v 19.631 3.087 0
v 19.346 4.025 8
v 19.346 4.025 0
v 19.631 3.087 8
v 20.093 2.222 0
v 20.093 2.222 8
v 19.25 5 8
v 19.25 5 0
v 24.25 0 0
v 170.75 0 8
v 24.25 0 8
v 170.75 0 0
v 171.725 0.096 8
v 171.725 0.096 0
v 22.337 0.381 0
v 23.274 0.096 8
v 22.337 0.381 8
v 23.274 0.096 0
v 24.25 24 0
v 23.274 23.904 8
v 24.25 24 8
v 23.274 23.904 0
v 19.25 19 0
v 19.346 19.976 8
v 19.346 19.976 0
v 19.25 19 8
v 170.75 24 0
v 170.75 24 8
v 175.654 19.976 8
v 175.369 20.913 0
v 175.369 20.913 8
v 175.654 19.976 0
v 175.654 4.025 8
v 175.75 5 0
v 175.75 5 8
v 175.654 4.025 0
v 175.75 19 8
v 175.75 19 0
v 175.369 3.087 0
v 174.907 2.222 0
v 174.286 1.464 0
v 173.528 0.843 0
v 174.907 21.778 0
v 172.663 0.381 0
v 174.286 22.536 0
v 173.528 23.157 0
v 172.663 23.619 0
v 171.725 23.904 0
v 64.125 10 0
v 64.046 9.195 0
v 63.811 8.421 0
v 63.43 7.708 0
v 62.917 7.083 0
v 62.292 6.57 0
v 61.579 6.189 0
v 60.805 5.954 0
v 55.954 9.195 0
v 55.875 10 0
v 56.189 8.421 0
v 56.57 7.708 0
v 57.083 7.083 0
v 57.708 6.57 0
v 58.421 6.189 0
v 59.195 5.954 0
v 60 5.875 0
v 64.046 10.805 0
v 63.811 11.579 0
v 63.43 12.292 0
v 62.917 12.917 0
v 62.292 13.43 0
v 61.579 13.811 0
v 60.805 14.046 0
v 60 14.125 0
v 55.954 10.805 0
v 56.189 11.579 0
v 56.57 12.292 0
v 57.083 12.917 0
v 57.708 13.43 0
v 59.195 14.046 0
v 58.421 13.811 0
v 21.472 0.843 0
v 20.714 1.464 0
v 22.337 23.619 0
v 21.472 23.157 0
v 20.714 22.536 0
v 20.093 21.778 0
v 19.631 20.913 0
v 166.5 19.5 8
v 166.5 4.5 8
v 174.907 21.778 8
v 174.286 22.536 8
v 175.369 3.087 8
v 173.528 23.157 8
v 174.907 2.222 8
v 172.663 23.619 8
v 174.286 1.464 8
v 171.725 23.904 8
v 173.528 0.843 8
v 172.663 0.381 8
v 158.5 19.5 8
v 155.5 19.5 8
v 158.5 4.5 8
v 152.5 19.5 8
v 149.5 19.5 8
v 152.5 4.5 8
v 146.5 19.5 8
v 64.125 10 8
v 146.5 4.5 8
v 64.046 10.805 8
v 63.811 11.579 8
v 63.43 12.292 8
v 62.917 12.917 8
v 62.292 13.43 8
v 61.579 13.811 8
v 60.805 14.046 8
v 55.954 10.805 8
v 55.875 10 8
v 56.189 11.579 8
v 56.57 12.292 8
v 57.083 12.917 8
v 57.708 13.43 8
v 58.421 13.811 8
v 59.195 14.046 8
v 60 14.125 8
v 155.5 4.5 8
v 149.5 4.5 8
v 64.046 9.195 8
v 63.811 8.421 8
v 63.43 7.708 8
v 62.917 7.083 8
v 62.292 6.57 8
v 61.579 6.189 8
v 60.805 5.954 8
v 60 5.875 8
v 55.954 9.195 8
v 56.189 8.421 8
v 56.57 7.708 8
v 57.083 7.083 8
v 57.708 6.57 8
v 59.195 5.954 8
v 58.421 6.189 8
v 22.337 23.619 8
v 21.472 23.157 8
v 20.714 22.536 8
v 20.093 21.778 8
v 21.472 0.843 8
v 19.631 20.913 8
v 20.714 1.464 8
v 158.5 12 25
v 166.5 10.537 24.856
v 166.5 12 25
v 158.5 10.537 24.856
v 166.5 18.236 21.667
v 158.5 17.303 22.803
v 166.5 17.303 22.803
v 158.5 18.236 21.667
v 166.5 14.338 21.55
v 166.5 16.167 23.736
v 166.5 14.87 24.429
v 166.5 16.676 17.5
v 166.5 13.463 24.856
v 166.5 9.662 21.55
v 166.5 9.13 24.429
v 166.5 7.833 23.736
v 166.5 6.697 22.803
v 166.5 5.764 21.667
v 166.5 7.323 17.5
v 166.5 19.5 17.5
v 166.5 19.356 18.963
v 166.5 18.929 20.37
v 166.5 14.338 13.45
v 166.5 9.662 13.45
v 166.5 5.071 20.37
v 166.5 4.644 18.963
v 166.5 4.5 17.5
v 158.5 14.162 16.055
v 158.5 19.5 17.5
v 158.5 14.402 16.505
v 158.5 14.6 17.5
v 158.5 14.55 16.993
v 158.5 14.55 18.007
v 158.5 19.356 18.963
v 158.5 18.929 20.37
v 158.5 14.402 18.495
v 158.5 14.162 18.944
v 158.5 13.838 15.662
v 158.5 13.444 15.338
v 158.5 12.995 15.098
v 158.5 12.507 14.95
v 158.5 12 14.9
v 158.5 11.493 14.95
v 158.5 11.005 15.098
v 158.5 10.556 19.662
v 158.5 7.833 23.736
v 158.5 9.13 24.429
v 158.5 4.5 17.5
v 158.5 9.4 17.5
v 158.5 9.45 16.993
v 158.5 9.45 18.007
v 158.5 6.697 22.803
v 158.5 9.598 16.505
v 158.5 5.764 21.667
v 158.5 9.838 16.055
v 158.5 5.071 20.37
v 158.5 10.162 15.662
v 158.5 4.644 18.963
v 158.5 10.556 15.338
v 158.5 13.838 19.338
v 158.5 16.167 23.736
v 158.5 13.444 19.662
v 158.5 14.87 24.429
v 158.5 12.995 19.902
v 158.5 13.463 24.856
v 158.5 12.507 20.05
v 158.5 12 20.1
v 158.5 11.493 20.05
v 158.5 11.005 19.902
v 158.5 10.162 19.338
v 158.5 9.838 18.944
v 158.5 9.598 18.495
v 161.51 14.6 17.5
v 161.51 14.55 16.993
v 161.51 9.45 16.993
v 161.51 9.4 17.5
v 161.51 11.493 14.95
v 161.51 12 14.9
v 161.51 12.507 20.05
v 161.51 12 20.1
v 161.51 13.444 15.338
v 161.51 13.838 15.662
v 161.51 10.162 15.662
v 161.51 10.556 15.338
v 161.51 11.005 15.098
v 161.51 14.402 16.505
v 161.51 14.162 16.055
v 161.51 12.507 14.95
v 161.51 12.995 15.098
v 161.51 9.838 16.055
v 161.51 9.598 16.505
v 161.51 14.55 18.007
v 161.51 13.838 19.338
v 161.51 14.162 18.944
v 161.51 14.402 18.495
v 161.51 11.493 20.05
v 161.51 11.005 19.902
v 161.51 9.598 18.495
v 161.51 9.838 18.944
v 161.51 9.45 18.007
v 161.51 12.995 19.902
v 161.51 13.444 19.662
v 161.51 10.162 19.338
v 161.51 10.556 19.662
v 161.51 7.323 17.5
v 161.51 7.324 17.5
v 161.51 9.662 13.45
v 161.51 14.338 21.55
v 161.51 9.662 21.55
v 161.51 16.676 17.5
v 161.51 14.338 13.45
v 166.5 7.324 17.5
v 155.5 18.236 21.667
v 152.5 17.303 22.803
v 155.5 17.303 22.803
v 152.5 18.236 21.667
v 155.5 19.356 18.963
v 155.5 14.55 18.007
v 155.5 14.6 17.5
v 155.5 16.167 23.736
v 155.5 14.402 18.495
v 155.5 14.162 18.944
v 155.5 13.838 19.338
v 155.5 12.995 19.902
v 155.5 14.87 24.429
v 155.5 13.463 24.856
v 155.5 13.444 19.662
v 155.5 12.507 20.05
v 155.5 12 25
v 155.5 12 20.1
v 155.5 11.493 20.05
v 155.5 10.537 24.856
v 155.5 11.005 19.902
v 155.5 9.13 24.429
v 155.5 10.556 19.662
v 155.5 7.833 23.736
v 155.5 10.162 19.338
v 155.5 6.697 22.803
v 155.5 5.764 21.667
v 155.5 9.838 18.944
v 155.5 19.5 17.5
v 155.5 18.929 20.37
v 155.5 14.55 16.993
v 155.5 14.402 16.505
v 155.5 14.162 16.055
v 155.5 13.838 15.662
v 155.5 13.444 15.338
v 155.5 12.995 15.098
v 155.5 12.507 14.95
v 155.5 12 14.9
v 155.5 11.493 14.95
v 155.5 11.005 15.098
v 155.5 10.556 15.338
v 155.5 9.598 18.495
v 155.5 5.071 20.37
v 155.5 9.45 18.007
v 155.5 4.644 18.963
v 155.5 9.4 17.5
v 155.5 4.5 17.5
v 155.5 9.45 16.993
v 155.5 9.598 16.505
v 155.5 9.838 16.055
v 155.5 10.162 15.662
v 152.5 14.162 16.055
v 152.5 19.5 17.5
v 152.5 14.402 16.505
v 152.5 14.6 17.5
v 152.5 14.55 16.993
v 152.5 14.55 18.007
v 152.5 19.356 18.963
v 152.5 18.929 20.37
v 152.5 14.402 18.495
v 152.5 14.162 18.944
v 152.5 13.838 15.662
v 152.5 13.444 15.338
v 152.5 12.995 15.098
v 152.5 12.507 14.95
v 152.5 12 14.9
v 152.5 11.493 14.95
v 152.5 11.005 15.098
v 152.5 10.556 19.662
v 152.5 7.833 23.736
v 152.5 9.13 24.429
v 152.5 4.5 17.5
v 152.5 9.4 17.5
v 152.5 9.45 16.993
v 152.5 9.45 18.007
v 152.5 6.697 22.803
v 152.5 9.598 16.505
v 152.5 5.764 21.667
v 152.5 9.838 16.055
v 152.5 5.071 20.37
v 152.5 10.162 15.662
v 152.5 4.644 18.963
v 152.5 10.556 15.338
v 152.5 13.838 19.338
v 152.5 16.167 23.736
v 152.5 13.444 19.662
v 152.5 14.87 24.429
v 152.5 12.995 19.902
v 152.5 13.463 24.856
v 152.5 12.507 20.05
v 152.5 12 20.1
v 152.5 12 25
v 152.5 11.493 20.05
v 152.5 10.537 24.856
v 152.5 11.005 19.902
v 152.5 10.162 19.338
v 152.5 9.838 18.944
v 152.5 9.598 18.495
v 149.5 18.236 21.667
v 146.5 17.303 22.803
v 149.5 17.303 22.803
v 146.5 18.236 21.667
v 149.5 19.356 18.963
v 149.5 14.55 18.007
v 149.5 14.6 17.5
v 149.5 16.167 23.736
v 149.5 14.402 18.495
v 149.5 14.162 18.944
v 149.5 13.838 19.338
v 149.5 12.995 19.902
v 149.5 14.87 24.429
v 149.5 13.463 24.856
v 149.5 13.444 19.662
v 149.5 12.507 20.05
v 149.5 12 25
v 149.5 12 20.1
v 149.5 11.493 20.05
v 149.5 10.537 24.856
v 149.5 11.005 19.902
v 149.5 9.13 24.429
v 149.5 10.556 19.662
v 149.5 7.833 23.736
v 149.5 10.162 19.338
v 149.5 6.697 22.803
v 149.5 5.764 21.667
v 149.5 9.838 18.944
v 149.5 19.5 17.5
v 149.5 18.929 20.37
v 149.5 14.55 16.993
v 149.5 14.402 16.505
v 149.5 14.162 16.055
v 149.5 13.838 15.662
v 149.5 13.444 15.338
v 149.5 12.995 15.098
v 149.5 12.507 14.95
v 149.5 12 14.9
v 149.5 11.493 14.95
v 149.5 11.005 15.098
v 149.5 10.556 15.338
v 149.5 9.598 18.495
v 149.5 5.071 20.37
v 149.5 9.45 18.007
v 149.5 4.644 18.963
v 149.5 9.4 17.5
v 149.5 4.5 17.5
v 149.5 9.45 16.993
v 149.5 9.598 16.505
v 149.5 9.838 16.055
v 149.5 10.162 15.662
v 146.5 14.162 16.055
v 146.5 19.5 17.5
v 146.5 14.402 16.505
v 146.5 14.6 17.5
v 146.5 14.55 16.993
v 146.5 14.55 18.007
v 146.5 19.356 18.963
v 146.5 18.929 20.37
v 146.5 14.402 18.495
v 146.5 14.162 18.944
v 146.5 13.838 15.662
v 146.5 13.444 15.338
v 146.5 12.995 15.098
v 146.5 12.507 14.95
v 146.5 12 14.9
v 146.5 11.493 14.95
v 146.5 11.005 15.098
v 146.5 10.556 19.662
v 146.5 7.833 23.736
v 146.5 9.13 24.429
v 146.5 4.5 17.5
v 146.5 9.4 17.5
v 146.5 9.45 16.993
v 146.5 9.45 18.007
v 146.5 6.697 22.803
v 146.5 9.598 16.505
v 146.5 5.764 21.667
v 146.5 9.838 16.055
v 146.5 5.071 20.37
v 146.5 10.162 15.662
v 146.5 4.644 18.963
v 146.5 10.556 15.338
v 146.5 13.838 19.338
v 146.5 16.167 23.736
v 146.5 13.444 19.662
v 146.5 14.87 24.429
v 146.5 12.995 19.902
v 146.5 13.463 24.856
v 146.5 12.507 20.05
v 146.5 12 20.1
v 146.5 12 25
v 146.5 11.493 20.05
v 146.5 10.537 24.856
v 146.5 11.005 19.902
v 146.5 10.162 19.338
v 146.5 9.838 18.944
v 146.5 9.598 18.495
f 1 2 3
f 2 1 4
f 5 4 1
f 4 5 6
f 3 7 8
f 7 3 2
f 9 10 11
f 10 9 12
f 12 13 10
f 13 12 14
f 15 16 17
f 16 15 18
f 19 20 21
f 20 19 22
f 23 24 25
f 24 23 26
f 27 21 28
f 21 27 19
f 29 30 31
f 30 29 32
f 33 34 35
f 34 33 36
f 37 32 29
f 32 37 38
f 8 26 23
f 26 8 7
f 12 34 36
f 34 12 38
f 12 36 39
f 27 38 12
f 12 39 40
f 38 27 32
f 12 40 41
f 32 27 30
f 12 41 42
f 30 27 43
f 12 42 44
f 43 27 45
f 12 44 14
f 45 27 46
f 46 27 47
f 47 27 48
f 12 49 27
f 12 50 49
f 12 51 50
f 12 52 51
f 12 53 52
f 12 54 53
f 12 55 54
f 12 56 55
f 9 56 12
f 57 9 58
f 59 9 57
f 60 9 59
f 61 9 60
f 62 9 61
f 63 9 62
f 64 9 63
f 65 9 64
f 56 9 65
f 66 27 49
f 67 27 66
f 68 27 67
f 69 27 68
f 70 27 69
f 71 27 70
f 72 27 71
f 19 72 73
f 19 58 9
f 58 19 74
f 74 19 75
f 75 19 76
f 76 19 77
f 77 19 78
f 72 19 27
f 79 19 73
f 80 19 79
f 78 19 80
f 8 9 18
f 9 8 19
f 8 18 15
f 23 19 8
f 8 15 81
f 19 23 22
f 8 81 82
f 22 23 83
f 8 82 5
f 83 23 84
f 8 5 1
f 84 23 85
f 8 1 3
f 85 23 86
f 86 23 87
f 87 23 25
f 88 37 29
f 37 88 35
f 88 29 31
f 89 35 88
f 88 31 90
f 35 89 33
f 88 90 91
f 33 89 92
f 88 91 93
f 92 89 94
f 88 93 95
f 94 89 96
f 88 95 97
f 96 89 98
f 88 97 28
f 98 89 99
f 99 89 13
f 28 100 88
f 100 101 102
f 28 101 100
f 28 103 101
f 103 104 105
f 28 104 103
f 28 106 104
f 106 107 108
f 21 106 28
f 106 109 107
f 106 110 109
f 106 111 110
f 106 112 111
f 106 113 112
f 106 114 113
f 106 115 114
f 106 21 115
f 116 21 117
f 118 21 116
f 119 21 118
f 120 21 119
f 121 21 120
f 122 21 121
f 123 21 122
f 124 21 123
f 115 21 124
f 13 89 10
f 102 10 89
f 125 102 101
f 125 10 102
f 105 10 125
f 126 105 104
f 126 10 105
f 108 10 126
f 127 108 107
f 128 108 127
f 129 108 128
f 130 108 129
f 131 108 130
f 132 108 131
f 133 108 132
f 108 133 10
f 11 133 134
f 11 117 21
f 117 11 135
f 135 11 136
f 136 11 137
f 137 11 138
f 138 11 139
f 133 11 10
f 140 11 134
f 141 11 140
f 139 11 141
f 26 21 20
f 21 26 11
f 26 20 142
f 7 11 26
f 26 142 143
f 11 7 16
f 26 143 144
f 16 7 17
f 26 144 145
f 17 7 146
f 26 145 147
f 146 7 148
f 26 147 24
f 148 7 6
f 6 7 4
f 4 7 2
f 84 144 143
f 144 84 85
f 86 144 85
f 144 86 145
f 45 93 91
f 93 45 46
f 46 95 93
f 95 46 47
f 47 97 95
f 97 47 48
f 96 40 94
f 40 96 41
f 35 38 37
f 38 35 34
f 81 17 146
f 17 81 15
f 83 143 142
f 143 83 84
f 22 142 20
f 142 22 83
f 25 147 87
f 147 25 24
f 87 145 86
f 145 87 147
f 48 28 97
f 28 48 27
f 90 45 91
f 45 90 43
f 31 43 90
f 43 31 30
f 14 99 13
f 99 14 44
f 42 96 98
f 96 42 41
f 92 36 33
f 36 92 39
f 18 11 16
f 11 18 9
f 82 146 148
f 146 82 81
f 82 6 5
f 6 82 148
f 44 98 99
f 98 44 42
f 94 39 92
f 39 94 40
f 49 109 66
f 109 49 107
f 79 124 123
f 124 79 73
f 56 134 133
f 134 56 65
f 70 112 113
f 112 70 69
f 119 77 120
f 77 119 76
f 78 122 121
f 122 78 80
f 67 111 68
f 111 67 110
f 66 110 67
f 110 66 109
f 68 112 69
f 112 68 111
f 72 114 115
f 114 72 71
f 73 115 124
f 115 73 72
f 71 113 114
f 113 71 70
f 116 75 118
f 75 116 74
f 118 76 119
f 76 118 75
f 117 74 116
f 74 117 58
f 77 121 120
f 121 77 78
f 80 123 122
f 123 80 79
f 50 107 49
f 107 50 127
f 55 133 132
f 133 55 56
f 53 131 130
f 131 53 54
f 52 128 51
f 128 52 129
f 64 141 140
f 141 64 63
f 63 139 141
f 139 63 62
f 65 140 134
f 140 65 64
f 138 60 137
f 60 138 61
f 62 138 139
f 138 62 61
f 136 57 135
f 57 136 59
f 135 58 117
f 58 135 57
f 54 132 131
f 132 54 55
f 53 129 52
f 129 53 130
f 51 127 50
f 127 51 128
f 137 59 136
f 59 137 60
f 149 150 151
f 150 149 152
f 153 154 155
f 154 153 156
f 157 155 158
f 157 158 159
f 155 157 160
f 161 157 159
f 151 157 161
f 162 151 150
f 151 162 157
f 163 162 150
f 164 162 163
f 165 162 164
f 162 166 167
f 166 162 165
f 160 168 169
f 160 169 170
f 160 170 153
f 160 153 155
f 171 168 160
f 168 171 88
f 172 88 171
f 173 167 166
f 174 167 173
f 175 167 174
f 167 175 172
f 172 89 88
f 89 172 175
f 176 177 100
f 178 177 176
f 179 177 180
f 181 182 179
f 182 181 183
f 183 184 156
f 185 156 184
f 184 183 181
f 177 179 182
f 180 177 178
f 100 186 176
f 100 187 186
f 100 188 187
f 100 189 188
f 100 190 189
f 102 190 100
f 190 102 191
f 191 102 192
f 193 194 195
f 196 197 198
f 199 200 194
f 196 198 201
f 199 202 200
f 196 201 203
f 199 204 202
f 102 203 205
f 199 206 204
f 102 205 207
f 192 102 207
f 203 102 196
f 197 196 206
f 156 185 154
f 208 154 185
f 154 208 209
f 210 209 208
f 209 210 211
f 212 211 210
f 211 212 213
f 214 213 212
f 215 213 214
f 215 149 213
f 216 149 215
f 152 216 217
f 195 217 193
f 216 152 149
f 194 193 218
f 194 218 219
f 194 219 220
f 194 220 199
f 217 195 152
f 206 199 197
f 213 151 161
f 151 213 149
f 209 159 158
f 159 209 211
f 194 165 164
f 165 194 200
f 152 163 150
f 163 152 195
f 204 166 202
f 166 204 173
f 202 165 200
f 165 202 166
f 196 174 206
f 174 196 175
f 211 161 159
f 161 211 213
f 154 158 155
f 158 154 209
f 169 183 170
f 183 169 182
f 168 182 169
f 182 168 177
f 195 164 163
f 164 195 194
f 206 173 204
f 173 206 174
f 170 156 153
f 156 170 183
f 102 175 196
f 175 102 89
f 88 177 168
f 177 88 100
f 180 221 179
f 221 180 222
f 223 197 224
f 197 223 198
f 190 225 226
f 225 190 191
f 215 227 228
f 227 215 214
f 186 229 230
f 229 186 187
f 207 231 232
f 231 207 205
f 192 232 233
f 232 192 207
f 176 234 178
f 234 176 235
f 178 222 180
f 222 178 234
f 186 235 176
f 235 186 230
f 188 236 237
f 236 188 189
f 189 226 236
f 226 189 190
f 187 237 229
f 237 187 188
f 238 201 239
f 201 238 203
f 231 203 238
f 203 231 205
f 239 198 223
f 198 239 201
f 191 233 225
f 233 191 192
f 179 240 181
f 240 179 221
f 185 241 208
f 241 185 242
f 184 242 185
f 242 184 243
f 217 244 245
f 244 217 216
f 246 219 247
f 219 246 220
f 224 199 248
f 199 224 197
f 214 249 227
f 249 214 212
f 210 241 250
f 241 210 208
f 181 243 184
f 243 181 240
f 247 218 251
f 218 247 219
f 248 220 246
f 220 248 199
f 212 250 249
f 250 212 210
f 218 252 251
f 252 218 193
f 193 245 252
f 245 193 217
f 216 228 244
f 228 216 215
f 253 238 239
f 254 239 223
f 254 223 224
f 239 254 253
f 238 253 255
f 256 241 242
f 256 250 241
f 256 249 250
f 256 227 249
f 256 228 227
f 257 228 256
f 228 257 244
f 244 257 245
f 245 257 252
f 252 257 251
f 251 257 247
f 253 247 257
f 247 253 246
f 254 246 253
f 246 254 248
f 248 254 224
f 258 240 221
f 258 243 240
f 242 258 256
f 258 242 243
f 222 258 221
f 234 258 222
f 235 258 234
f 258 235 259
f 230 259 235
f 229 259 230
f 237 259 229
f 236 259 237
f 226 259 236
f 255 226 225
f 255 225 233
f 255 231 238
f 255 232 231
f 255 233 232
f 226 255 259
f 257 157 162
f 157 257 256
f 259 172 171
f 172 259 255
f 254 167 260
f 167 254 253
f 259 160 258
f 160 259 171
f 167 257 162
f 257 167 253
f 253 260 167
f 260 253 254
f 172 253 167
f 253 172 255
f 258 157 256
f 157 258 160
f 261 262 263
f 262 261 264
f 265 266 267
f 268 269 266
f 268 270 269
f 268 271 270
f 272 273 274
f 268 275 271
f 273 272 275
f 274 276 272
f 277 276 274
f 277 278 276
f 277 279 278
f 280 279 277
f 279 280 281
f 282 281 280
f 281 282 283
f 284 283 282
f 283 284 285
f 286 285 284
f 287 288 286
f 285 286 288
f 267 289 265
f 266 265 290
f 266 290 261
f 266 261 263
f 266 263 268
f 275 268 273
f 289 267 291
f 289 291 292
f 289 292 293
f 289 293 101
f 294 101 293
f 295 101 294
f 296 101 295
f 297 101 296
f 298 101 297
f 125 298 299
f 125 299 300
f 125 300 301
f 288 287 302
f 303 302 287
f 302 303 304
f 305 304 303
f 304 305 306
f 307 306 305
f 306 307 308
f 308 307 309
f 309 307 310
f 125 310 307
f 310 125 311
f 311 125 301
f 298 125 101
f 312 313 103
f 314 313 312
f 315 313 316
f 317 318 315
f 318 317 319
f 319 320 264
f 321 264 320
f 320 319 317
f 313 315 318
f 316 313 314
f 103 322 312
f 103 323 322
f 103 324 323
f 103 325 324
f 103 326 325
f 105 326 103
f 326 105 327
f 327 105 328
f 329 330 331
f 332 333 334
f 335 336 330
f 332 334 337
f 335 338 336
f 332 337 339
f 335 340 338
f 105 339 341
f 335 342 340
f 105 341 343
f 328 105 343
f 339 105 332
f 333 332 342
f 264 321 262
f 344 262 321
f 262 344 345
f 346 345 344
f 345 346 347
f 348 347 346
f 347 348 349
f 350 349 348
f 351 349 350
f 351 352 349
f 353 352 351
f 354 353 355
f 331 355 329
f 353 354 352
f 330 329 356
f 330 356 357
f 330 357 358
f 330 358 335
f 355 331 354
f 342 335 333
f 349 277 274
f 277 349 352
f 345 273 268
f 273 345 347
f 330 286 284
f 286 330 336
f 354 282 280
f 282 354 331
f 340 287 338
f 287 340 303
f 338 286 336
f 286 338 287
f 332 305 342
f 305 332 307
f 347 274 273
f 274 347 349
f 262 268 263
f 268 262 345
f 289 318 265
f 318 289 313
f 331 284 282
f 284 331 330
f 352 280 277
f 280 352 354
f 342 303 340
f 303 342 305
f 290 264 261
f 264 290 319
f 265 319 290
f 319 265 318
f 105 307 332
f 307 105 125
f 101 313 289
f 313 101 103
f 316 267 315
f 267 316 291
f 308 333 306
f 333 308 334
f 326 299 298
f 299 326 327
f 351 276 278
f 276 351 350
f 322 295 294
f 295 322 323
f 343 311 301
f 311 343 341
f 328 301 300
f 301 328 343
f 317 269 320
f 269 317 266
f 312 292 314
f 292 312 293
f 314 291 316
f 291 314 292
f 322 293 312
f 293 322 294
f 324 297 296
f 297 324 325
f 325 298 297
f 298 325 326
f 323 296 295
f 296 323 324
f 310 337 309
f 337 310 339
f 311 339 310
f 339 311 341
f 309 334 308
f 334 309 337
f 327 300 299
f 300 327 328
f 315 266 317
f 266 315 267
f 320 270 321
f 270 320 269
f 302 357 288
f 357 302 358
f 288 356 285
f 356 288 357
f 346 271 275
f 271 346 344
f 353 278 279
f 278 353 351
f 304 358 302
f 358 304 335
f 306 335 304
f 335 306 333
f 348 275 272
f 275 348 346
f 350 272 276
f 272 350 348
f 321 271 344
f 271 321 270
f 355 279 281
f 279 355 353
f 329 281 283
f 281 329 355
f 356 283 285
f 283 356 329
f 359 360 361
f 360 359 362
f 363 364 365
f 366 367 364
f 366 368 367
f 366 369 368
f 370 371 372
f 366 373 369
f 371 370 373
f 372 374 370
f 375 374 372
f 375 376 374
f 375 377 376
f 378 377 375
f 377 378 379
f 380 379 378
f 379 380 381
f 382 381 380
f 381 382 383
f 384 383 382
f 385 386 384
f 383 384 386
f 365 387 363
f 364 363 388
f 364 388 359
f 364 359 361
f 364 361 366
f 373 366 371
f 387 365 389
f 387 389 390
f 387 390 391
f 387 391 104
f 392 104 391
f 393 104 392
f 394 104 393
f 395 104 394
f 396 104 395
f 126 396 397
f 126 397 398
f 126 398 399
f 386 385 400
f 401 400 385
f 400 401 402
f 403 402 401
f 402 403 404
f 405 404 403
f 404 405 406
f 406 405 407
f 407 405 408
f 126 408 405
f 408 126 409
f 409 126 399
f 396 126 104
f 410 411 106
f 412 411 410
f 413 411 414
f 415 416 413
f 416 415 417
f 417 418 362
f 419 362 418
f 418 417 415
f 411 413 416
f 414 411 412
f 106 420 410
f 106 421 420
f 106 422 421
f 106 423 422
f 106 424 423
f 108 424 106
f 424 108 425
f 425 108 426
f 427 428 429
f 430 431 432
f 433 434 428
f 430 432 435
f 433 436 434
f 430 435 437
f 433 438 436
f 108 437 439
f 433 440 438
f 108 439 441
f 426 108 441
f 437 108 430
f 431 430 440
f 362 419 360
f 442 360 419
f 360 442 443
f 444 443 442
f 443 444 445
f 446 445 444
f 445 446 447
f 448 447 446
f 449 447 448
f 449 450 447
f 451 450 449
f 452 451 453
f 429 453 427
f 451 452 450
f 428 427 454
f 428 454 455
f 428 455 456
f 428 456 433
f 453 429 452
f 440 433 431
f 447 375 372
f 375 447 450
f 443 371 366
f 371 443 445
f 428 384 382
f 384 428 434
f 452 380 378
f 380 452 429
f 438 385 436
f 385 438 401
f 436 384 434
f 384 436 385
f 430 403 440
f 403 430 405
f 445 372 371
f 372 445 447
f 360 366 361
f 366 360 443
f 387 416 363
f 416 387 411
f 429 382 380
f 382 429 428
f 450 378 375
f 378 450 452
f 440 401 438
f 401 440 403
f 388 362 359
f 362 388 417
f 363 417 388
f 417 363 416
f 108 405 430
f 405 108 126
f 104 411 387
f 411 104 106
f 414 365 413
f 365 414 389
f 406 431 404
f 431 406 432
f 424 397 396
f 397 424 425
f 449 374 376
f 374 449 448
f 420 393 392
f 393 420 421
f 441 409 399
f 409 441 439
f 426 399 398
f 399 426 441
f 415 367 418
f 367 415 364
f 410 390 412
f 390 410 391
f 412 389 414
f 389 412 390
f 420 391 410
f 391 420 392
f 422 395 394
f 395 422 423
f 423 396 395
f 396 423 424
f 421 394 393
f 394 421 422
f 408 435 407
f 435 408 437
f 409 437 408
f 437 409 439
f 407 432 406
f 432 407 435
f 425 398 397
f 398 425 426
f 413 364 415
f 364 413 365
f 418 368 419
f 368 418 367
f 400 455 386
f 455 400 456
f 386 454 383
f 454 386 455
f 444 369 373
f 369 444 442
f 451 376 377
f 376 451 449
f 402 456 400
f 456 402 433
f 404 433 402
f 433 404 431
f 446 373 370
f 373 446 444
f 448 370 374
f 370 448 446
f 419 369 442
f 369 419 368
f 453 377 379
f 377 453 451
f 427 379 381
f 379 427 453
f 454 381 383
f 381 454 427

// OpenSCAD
// file: gopro-mount-library.scad
$fa = 2;
$fs = 0.25;
gopro_extra_mount_depth = 3;
gopro_flap_width = 3;
gopro_flap_with_nut_width = gopro_flap_width + 5;
gopro_flap_depth = 15;
gopro_flap_extra_depth = 2;
gopro_flap_spacing = 3;
gopro_screw_dia = 5.2;

gopro_tripod_width = gopro_flap_with_nut_width + 2 * gopro_flap_width + 2 * gopro_flap_spacing;
gopro_camera_width = 2 * gopro_flap_width + gopro_flap_spacing;

// derived values

gfdh = gopro_flap_depth/2;
nh = gopro_flap_with_nut_width - gopro_flap_width;



module gopro_nut_hole() {
    for(i = [0, 120, 240]) {
        rotate([0, 0, i])
            cube([4.6765, 8.1, nh], center = true);
    } 
}

module gopro_flap(width = gopro_flap_width) {
    difference() {
        union() {
            cylinder(d = gopro_flap_depth, h = width);
            translate([-gfdh, 0, 0])
                cube([gopro_flap_depth, gopro_flap_depth - gfdh + gopro_flap_extra_depth, width]);
        }
        translate([0, 0, -0.01])
            cylinder(d = gopro_screw_dia, h = width + 0.02);
    } 
}

module gopro_mount_camera_side() {
    translate([0, - gfdh - gopro_flap_extra_depth, 0]) {
        
        gopro_flap();
        translate([0, 0, gopro_flap_width + gopro_flap_spacing])
            gopro_flap();
    }
}

module gopro_mount_tripod_side() {
    translate([0, - gfdh - gopro_flap_extra_depth, 0]) {
        difference() {
            gopro_flap(gopro_flap_with_nut_width);
            translate([0, 0, nh/2 - 0.01])
                gopro_nut_hole();
        }
    }
    translate([0, 0, gopro_flap_with_nut_width + gopro_flap_spacing])
        gopro_mount_camera_side();    
}
// file: ../../Various/SCAD/rounded_box.scad
/**
 * Small "library" for creating boxes with rounded edges.
 *
 * Hendrik Busch, 2017-20 (https://github.com/hmbusch)
 *
 */

/**
 * Creates either a circle with the given diameter or a square
 * where each side has the length of the diameter value. This module
 * exists to save code lines and should not be used externally.
 * 
 * @param circle
 *          if 'true', draw a circle, otherwise draw a square
 * @param diameter
 *          the measurement for the circle diameter or square side length
 */
module squareOrCircle(circle, diameter) {
    if (circle) {
        circle(d = diameter);
    } else {
        square([diameter, diameter], center = true);
    }
}

/**
 * Creates either a sphere with the given diameter or a half-sphere
 * where each side has the length of the diameter value. This module
 * exists to save code lines and should not be used externally.
 * 
 * @param sphere
 *          if 'true', draw a sphere, otherwise draw a cube
 * @param diameter
 *          the measurement for the sphere diameter or cube side length
 */
module cubeOrSphere(sphere, diameter, angle = 0) {
    if (sphere) {
        sphere(d = diameter);        
    } else {
        difference() {
            sphere(d = diameter);
            translate([diameter/4, 0, 0]) 
                cube([diameter/2, diameter, diameter], true);
        }
    }
}
 
/**
 * Creates a 2D-shape of a box with the given dimensions and rounded edges. 
 * Be sure to increase $fn for nicer edges.
 *
 * @param width
 *          the desired width of the box (default is 10mm)
 * @param depth
 *          the desired depth of the box (default is 10mm)
 * @param height
 *          the desired height of the box (default is 10mm)
 * @param edge_radius
 *          the radius of all the edges on the xy-plane (default is 2mm)
 * @param edges
 *          array of four boolean values to determine which of the four
 *          corners should be round (true) and which not (false). Order is
 *          bottom left, bottom right, top left, top right. Default value
 *          is true for all corners
 */  
module box_with_round_edges_2d(width = 10, depth = 10, edge_radius = 2, edges = [true, true, true, true]) {
    if (edge_radius <= 0) {
        square([width, depth]);
    } else {
        ed = edge_radius * 2;
        translate([edge_radius, edge_radius, 0]) hull() {
            squareOrCircle(edges[0], ed);
            translate([width - ed, 0, 0]) squareOrCircle(edges[1], ed);
            translate([0, depth - ed, 0]) squareOrCircle(edges[2], ed);
            translate([width - ed, depth - ed, 0]) squareOrCircle(edges[3], ed);    
        }
    }
}
 
/**
 * Call to create a box with rounded edges (edges will be round on one plane only).
 * Be sure to increase $fn for nicer edges.
 * 
 * @param width
 *          the desired width of the box (default is 10mm)
 * @param depth
 *          the desired depth of the box (default is 10mm)
 * @param height
 *          the desired height of the box (default is 10mm)
 * @param edge_radius
 *          the radius of all the edges on the xy-plane (default is 2mm)
 * @param edges
 *          array of four boolean values to determine which of the four
 *          corners should be round (true) and which not (false). Order is
 *          bottom left, bottom right, top left, top right. Default value
 *          is true for all corners
 *
 */
module box_with_round_edges_3d(width = 10, depth = 10, height = 10, edge_radius = 2, edges = [true, true, true, true]) {
	linear_extrude(height = height) {
		box_with_round_edges_2d(width, depth, edge_radius, edges);
	}
}

/**
 * Call to create a box with rounded edges (edges will be round on one plane only).
 * Be sure to increase $fn for nicer edges. This module has inputs that resemble
 * those of cube() so that it can act as a drop-in replacement.
 * 
 * @param dimensions
 *          3-value-array with x, y and z dimensions (default is 10x10x10mm).
 * @param edge_radius
 *          the radius of all the edges on the xy-plane (default is 2mm)
 * @param edges
 *          array of four boolean values to determine which of the four
 *          corners should be round (true) and which not (false). Order is
 *          bottom left, bottom right, top left, top right. Default value
 *          is true for all corners
 *
 */
module box_with_round_edges_3d(dimensions = [10, 10, 10], edge_radius = 2, edges = [true, true, true, true]) {
	linear_extrude(height = dimensions[2]) {
		box_with_round_edges_2d(dimensions[0], dimensions[1], edge_radius, edges);
	}
}

/**
 * Call to create a box with rounded edges (edges will be round on all planes).
 * Increased $fn gives you nicer looking edges but will also increase preview 
 * and compile time drastically (there are maaaany edges in these boxes).
 * This is still work in progress as it is rather tricky do get the box to look
 * correctly if single corners are not round. It involves working with either
 * spheres, half-spheres or cubes, depending on the look of connected corners. 
 *
 * @param dimensions
 *          3-value-array with x, y and z dimensions (default is 10x10x10mm).
 * @param edge_radius
 *          the radius of all the edges on the xy-plane (default is 2mm)
 * @param edges
 *          three-dimensional array to control each corner individually (2x2x2 elements).
 *          'true' gives you a round corner, 'false' a pointy one. Outer array is x, then y,
 *          then z.
 */
module cube_with_round_edges(dimensions = [10, 10, 10], edge_radius = 2, edges = [ [ [true, true], [true, true] ], [ [true, true], [true, true] ] ]) {
    dia = 2 * edge_radius;
    hull() {
        for(x = [0, 1]) {
            for (y = [0, 1]) {
                for (z = [0, 1]) {
                    trans_x = x == 0 ? edge_radius : dimensions[0] - edge_radius;
                    trans_y = y == 0 ? edge_radius : dimensions[0] - edge_radius;
                    trans_z = z == 0 ? edge_radius : dimensions[0] - edge_radius;
                    translate([trans_x, trans_y, trans_z])
                        cubeOrSphere(edges[x][y][z], dia);
                }
            }
        }
    }
}
// main file
use <../../Various/SCAD/rounded_box.scad>
include <gopro-mount-library.scad>

camera_x = 108;
camera_y = 24;
camera_z = 65;
camera_mount_x_offset_1 = 60;
camera_mount_x_offset_2 = camera_x - camera_mount_x_offset_1;
camera_mount_y_offset_1 = 10;
camera_mount_y_offset_2 = camera_y - camera_mount_y_offset_1;

light_width = 77;
camera_to_light_gap = 10;

strut_offset = light_width/4;
strut_x = camera_x + light_width + camera_to_light_gap - 2 * strut_offset;
strut_y = camera_y;
strut_z = 8;

mount_screw_hole = 8.25;

f = 0.01;
df = 2 * f;

$fn = 32;

module strut() {
    difference() {
        translate([strut_offset, 0, 0])
            box_with_round_edges_3d([strut_x, strut_y, strut_z], 5);
        translate([camera_mount_x_offset_1, camera_mount_y_offset_1, -f])
            cylinder(d = mount_screw_hole, h = strut_z + df);
    }
    translate([camera_x + camera_to_light_gap + gopro_tripod_width/2 + light_width/2, strut_y/2, strut_z])
        rotate([-90, 0, 90])
            gopro_mount_tripod_side();
}

module camera_and_light() {
    translate([0, 0, strut_z])
        cube([camera_x, camera_y, camera_z]);
    translate([camera_x + camera_to_light_gap, 0, strut_z + 15])
        cube([light_width, camera_y, light_width]);
}
strut();
//#camera_and_light();
